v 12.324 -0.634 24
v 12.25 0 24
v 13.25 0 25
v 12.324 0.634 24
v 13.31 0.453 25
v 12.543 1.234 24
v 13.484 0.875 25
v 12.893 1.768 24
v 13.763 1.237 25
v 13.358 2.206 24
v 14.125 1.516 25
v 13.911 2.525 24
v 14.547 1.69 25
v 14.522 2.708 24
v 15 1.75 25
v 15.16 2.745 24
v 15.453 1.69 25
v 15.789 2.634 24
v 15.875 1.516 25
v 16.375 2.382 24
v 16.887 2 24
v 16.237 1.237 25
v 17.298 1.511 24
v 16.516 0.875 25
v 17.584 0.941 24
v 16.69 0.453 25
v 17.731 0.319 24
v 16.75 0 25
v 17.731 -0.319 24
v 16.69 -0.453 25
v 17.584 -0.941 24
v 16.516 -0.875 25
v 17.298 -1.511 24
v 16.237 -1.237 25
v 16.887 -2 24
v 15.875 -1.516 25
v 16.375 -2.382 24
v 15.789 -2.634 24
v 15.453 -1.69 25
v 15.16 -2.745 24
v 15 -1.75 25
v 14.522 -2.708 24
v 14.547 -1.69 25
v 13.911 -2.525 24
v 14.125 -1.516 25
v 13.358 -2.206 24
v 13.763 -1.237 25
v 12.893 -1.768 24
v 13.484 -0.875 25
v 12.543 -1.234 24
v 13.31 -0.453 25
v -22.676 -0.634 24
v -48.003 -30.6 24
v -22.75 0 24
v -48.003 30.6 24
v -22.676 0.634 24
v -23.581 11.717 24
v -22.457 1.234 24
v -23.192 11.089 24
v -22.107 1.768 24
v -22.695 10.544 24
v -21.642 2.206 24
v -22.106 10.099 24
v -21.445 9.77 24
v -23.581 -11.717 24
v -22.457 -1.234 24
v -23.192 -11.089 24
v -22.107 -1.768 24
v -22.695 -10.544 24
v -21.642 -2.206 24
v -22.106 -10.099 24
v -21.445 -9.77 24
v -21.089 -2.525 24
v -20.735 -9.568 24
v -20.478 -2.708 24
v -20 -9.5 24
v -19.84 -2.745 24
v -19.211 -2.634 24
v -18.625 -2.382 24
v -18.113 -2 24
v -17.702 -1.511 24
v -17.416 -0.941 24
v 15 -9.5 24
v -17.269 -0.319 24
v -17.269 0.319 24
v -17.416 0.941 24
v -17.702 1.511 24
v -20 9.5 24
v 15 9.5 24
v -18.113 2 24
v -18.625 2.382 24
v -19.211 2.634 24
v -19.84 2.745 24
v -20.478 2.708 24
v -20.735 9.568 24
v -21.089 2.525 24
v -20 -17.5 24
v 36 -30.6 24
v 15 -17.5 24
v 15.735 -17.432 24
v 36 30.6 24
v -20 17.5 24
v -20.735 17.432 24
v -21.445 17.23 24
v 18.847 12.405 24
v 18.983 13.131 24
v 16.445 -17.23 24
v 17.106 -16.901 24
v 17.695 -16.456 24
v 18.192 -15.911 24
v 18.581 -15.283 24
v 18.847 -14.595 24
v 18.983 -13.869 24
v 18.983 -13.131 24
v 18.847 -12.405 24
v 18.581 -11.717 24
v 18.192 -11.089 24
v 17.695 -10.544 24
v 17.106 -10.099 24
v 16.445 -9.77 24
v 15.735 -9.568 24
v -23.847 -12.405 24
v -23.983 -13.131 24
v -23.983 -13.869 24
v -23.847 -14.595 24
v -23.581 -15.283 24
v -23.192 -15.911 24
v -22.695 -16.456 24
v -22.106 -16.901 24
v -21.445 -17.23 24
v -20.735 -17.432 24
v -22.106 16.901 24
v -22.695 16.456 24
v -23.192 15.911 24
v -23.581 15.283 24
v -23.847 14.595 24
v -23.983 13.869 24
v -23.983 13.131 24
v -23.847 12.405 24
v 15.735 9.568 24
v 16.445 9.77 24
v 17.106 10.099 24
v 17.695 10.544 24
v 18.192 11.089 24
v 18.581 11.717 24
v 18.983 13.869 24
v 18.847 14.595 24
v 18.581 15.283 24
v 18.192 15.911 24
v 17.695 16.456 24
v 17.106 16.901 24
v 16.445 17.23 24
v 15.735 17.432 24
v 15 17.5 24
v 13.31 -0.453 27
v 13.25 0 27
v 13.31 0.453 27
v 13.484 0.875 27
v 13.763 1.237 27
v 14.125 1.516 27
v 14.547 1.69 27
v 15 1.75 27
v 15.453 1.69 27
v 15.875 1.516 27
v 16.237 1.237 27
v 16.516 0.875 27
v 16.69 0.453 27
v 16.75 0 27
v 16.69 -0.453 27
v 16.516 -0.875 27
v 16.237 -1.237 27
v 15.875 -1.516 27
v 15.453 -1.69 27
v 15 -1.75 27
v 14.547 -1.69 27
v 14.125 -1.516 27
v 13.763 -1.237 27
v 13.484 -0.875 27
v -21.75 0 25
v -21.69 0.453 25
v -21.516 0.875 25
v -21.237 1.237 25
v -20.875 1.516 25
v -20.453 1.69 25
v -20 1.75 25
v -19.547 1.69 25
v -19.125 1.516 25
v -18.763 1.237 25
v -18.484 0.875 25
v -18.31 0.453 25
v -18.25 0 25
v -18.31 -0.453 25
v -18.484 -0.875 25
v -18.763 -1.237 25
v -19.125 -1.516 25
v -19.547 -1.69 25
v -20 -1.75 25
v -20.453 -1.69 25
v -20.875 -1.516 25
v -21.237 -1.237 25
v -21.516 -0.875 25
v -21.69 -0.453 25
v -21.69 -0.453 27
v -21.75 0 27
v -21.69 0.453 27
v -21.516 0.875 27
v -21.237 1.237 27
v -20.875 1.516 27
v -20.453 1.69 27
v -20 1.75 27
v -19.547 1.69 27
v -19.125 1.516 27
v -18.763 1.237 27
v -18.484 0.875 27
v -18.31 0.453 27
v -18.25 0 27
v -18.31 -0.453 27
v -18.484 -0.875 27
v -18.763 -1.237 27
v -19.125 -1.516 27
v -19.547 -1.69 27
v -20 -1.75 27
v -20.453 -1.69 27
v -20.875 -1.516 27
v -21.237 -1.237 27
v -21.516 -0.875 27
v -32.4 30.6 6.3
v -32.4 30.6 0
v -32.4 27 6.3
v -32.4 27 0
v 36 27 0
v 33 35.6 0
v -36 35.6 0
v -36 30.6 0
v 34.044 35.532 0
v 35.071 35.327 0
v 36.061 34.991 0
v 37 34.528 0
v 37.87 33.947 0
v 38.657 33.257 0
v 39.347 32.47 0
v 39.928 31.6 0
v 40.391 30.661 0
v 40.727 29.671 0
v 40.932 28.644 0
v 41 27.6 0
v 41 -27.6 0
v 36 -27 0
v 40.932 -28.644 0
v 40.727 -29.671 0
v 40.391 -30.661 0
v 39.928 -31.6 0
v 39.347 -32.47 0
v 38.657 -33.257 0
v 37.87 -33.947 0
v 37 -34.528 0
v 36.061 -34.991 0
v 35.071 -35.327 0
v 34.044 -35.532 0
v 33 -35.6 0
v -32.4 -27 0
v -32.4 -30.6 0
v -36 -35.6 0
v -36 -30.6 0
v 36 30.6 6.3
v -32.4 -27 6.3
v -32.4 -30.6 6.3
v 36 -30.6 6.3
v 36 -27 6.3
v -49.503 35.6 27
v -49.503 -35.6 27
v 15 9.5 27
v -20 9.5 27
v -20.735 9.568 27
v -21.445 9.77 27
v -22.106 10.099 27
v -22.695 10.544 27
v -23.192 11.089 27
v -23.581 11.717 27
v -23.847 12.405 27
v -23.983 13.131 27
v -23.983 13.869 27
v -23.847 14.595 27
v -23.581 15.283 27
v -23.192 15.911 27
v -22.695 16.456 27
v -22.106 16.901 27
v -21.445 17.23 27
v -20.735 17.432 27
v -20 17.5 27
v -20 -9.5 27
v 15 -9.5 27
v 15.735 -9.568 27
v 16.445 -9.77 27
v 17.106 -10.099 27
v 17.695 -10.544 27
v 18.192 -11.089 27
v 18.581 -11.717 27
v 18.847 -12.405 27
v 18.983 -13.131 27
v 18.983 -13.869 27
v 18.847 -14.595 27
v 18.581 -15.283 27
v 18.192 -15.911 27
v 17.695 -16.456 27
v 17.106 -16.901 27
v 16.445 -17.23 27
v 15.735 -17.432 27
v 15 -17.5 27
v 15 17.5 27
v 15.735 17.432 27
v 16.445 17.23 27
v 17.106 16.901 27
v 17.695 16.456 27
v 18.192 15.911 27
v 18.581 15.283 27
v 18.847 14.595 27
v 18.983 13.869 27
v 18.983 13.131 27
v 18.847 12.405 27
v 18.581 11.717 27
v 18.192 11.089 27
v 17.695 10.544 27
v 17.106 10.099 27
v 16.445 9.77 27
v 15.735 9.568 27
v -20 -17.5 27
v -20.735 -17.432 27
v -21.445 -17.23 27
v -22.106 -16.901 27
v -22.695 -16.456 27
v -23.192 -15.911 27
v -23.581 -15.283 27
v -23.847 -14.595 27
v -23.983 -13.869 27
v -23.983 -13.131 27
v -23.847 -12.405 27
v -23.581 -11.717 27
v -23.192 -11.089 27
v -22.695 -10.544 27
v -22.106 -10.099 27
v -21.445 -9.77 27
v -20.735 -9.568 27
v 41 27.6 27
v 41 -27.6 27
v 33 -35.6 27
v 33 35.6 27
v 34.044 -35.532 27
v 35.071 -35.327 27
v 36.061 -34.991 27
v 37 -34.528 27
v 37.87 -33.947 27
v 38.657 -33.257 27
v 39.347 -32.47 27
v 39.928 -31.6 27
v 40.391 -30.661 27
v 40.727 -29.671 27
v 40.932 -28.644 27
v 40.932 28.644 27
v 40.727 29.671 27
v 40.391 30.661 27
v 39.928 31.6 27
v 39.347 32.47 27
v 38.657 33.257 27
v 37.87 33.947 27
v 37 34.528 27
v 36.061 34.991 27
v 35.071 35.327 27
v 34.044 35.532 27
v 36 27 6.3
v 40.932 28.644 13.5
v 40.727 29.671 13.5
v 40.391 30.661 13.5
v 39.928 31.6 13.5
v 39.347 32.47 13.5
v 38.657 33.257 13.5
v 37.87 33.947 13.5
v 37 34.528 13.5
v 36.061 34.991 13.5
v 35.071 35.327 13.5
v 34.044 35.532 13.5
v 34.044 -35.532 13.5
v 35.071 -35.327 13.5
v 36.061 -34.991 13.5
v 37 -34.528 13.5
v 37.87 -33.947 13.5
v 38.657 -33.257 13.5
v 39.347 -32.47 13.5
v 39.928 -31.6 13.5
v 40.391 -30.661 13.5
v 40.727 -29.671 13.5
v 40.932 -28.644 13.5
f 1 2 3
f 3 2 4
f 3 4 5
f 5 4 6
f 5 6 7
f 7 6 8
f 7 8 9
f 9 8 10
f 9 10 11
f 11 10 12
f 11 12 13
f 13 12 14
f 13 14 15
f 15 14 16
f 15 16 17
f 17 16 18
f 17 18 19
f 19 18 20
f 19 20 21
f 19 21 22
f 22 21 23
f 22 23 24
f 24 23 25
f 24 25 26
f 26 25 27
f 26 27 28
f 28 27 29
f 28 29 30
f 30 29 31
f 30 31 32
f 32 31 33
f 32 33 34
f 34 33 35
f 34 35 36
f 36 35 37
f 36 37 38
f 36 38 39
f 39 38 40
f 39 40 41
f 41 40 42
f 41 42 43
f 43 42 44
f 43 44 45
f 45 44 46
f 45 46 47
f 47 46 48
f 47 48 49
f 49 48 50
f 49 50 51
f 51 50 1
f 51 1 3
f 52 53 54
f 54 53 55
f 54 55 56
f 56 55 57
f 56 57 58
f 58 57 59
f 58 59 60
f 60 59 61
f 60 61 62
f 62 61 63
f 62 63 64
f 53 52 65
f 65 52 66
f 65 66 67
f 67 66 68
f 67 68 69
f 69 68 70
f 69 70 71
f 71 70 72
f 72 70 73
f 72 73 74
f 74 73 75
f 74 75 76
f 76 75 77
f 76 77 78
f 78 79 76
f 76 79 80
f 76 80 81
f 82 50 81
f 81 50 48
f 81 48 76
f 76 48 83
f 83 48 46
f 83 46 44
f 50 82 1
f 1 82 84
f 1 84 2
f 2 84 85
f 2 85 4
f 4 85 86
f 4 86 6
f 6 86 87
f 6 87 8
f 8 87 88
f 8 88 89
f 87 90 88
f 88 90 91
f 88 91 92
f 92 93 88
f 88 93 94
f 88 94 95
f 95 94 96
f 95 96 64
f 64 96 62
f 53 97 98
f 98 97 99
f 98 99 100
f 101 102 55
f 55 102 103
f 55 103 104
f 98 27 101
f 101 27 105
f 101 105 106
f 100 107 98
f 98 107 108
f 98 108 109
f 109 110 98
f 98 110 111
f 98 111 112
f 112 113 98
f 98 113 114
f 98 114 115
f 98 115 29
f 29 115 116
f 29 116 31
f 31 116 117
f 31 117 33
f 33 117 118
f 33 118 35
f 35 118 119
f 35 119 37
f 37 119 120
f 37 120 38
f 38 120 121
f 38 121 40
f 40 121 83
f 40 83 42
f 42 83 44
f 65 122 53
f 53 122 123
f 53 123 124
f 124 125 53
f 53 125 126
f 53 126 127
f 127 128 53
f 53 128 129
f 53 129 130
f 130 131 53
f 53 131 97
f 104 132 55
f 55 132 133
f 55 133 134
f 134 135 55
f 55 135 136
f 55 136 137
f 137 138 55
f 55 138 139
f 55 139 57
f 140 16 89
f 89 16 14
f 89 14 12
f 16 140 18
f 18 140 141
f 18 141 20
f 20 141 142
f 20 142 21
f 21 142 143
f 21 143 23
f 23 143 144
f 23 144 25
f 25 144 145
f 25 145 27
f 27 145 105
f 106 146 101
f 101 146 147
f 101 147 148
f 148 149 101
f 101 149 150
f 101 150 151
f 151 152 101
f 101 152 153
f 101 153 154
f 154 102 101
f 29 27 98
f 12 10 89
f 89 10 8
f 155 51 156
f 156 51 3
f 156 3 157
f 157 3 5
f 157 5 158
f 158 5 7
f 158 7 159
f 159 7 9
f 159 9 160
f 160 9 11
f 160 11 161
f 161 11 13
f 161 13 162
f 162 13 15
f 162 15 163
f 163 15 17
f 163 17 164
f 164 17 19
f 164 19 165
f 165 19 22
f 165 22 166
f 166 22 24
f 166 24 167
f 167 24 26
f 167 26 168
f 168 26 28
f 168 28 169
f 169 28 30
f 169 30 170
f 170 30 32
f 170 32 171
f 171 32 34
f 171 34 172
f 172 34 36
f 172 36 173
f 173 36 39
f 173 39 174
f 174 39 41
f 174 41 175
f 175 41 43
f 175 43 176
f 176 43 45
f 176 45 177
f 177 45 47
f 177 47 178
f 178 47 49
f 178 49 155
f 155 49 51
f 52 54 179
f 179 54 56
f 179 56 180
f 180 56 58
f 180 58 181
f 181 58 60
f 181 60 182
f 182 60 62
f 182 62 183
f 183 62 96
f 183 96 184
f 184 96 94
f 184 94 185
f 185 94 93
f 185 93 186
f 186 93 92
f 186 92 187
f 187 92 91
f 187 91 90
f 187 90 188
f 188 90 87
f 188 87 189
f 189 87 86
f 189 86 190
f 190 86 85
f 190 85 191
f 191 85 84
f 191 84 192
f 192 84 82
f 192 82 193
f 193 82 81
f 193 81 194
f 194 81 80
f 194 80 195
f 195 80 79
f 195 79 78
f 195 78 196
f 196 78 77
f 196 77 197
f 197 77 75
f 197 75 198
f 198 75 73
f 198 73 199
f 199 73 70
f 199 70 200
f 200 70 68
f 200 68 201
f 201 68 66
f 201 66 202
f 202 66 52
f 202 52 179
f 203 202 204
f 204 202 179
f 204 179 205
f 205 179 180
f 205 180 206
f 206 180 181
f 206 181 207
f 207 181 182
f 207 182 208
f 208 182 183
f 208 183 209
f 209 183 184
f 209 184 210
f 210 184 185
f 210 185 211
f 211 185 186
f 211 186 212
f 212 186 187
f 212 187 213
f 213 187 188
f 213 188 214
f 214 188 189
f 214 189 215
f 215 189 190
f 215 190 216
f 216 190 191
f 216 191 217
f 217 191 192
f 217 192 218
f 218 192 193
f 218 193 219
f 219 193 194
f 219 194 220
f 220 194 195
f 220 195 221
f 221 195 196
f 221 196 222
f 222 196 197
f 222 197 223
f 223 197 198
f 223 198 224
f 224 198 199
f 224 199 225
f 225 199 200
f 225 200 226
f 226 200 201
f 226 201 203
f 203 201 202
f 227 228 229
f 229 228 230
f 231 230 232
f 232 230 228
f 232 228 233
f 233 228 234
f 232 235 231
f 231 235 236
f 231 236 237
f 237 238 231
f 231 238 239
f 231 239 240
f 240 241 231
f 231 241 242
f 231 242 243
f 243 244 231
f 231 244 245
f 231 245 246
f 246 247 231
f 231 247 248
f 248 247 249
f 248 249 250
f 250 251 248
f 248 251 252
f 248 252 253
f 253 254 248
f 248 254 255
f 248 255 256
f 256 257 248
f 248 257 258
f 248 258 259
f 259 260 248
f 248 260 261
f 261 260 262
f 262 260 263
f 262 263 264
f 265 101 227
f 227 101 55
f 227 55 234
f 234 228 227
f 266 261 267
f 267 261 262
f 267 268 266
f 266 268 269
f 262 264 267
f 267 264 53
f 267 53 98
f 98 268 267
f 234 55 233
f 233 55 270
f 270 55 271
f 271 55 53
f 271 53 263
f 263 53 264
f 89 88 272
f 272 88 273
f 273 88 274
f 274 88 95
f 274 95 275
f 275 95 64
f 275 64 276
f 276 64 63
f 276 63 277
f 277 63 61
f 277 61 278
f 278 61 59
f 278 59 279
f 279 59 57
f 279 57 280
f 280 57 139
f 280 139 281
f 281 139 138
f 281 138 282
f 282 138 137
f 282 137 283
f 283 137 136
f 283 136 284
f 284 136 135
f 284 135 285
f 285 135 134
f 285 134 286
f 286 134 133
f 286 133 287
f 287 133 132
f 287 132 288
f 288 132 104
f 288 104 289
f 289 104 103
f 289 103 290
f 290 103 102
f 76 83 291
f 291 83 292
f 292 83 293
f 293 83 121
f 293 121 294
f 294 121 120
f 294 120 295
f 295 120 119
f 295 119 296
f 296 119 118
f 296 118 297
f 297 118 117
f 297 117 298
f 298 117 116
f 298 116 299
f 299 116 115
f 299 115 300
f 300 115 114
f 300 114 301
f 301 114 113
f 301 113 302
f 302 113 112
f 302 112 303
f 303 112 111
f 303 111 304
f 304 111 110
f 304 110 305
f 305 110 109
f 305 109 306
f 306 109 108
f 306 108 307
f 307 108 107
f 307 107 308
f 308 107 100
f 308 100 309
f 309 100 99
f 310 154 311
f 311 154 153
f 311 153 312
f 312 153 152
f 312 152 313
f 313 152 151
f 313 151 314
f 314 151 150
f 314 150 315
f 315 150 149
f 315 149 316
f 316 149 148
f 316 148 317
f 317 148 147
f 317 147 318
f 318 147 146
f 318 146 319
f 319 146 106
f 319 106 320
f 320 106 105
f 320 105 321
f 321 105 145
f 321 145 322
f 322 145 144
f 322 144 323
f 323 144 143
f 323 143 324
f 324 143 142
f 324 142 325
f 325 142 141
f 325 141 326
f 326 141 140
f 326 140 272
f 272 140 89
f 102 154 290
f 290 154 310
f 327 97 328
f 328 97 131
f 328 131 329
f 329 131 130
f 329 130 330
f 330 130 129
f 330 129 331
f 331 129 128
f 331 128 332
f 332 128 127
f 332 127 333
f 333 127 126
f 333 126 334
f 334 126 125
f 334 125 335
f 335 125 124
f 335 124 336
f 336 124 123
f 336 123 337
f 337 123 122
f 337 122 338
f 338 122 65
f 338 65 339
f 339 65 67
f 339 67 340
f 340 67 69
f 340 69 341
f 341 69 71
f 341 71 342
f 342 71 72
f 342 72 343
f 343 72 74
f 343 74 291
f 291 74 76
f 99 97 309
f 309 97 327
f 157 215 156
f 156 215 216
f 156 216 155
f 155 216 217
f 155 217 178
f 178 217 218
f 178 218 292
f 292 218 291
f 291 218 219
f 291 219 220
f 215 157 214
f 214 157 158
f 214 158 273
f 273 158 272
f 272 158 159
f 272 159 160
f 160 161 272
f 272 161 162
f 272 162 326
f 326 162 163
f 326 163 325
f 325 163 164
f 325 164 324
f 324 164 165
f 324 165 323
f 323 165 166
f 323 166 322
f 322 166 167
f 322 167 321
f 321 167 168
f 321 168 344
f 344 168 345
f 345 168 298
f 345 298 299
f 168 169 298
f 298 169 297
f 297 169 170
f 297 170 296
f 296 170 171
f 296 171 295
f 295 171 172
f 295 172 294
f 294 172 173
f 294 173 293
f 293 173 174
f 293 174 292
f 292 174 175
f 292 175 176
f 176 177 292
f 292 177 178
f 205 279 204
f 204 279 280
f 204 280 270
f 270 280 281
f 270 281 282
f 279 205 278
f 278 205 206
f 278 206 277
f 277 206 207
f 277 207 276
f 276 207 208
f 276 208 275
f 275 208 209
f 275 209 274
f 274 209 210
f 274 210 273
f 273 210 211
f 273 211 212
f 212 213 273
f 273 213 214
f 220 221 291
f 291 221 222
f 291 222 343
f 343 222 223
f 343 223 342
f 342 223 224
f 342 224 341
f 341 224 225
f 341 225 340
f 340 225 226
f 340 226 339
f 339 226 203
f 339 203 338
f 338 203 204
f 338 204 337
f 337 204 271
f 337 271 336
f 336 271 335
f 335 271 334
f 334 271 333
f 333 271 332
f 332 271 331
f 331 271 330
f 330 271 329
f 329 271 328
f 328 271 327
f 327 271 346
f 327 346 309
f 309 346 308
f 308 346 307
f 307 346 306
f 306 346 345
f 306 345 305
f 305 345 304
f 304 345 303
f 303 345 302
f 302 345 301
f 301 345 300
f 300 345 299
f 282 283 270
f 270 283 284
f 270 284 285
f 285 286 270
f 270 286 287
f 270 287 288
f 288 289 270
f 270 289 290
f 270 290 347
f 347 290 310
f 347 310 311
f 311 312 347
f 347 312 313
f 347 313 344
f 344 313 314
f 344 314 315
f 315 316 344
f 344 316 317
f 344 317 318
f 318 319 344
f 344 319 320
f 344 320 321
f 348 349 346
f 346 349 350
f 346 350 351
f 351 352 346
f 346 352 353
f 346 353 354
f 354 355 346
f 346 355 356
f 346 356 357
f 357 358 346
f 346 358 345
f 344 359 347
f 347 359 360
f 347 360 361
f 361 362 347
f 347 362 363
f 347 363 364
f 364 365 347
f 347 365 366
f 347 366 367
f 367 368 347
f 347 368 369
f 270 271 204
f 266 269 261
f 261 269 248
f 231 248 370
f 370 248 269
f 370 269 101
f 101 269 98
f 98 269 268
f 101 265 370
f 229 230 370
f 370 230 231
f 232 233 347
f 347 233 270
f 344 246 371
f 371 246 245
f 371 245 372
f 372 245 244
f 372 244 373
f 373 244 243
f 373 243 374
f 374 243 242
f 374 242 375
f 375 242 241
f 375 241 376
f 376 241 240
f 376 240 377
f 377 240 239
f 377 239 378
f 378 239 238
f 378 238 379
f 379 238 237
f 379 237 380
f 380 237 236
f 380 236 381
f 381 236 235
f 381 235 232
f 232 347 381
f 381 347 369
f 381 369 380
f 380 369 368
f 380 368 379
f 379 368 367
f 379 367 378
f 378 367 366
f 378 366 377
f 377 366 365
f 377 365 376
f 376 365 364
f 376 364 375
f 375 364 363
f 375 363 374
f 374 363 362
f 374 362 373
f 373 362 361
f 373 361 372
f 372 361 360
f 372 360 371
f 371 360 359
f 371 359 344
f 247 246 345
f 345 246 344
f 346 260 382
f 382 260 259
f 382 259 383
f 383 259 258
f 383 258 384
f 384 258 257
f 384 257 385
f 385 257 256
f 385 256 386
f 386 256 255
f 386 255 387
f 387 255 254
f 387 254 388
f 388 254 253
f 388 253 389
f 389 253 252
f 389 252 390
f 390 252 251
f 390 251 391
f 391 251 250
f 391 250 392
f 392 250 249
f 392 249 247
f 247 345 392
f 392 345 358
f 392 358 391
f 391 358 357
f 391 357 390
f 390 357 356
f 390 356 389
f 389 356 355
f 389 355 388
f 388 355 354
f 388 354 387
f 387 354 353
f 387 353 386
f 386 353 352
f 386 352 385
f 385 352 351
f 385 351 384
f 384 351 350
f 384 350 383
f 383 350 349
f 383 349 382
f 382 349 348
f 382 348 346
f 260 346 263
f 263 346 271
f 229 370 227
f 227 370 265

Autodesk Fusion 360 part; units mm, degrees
sketch "Sketch1" plane through (0, 0, 0) normal (0, 0, 1) x (1, 0, 0)
  line L0 (36, 27) -> (-36, 27)
  line L1 (-36, 27) -> (-36, -27)
  line L2 (-36, -27) -> (36, -27)
  line L3 (36, -27) -> (36, 27)
  line L4 (36, 30.6) -> (-36, 30.6)
  line L5 (-36, 35.6) -> (-36, -30.6)
  line L6 (-36, -30.6) -> (36, -30.6)
  line L7 (36, -30.6) -> (36, 30.6)
  line L8 (33, 35.6) -> (-36, 35.6)
  line L9 (41, -27.6) -> (41, 27.6)
  line L10 (33, -35.6) -> (-36, -35.6)
  line L11 (-36, -35.6) -> (-36, 30.6)
  arc A0 (41, 27.6) -> (33, 35.6) centre (33, 27.6) ccw
  arc A1 (33, -35.6) -> (41, -27.6) centre (33, -27.6) ccw
  circle A2 centre (-20, 0) radius 1.75
  circle A3 centre (15, 0) radius 1.75
  line L12 (-20, 9.5) -> (15, 9.5)
  arc A4 (15, 9.5) -> (15, 17.5) centre (15, 13.5) ccw
  line L13 (15, 17.5) -> (-20, 17.5)
  arc A5 (-20, 17.5) -> (-20, 9.5) centre (-20, 13.5) ccw
  line L14 (-20, 13.5) -> (15, 13.5) construction
  line L15 (1.75, 0) -> (22.5, 0)
  line L16 (-20, -9.5) -> (15, -9.5)
  line L17 (15, -17.5) -> (-20, -17.5)
  arc A6 (15, -17.5) -> (15, -9.5) centre (15, -13.5) ccw
  arc A7 (-20, -9.5) -> (-20, -17.5) centre (-20, -13.5) ccw
  dimension "d1" = 72
  dimension "d2" = 54
  dimension "d3" = 61.2
  dimension "d6" = 8
  dimension "d32" = 3.5
  dimension "d33" = 3.5
  dimension "d34" = 8
extrude "Extrude1" add sketch "Sketch1" along normal blind 6.3 contours L3 L4 L5 L6 L7 L8 L9 L10 L11 A0 A1 | L0 L4 L5 L7 L11 | L2 L5 L6 L7 L11
extrude "Extrude2" add sketch "Sketch1" along normal blind 24 contours L3 L4 L5 L6 L7 L8 L9 L10 L11 A0 A1
extrude "Extrude3" add sketch "Sketch1" along normal blind 27 and the other way blind -24
sketch "Sketch2" plane through (0, -35.6, 0) normal (0, -1, 0) x (1, 0, 0)
  line L0 (-36, 0) -> (33, 0)
  line L1 (33, 0) -> (33, 27)
  line L2 (-36, 27) -> (-36, 0)
  line L3 (-36, 0) -> (-49.5029, 27)
  line L4 (-36, 0) -> (-6, 0) construction
  line L5 (-36, 27) -> (-49.5029, 27)
  line L6 (33, 27) -> (-36, 27)
  line L7 (-36, 27) -> (-36, 24)
  line L8 (-36, 24) -> (-36.4845, 24)
  line L9 (-36.4845, 24) -> (-48.0026, 24)
  line L10 (-36, 0) -> (-36, 6.4)
  line L11 (-36, 6.4) -> (-36, 6)
  line L12 (-36, 6.4) -> (-39.2007, 6.4)
  line L13 (-36, 0) -> (-32.4, 0)
  line L14 (-49.5029, 27) -> (-47.5029, 27)
  line L15 (-36, 6.4) -> (-32.4, 6.4)
  line L16 (-32.4, 6.4) -> (-32.4, 0)
  dimension "d11" = 116.57
  dimension "d25" = 6.4
  dimension "d36" = 3.6
  dimension "d37" = 2
extrude "Extrude4" add sketch "Sketch2" against normal blind 5 contours L2 L3 L10 L11 L12 | L2 L3 L8 L9 L12
extrude "Extrude5" add sketch "Sketch2" along normal blind -71.2 and the other way blind 66.2 contours L2 L3 L10 L11 L12 | L2 L3 L8 L9 L12
extrude "Extrude6" add sketch "Sketch2" against normal blind 71.2 contours L2 L3 L5 L7 L8 L9 L14
extrude "Extrude7" cut sketch "Sketch2" along normal blind -8.6 and the other way blind 5 contours L0 L2 L10 L11 L13 L15 L16
extrude "Extrude8" cut sketch "Sketch2" along normal blind -66.2 and the other way blind 62.6 contours L0 L2 L10 L11 L13 L15 L16
chamfer "Chamfer1" distance 1 angle 45 2 edges at (-21.6316, 0.6328, 24) (13.3684, 0.6328, 24)
